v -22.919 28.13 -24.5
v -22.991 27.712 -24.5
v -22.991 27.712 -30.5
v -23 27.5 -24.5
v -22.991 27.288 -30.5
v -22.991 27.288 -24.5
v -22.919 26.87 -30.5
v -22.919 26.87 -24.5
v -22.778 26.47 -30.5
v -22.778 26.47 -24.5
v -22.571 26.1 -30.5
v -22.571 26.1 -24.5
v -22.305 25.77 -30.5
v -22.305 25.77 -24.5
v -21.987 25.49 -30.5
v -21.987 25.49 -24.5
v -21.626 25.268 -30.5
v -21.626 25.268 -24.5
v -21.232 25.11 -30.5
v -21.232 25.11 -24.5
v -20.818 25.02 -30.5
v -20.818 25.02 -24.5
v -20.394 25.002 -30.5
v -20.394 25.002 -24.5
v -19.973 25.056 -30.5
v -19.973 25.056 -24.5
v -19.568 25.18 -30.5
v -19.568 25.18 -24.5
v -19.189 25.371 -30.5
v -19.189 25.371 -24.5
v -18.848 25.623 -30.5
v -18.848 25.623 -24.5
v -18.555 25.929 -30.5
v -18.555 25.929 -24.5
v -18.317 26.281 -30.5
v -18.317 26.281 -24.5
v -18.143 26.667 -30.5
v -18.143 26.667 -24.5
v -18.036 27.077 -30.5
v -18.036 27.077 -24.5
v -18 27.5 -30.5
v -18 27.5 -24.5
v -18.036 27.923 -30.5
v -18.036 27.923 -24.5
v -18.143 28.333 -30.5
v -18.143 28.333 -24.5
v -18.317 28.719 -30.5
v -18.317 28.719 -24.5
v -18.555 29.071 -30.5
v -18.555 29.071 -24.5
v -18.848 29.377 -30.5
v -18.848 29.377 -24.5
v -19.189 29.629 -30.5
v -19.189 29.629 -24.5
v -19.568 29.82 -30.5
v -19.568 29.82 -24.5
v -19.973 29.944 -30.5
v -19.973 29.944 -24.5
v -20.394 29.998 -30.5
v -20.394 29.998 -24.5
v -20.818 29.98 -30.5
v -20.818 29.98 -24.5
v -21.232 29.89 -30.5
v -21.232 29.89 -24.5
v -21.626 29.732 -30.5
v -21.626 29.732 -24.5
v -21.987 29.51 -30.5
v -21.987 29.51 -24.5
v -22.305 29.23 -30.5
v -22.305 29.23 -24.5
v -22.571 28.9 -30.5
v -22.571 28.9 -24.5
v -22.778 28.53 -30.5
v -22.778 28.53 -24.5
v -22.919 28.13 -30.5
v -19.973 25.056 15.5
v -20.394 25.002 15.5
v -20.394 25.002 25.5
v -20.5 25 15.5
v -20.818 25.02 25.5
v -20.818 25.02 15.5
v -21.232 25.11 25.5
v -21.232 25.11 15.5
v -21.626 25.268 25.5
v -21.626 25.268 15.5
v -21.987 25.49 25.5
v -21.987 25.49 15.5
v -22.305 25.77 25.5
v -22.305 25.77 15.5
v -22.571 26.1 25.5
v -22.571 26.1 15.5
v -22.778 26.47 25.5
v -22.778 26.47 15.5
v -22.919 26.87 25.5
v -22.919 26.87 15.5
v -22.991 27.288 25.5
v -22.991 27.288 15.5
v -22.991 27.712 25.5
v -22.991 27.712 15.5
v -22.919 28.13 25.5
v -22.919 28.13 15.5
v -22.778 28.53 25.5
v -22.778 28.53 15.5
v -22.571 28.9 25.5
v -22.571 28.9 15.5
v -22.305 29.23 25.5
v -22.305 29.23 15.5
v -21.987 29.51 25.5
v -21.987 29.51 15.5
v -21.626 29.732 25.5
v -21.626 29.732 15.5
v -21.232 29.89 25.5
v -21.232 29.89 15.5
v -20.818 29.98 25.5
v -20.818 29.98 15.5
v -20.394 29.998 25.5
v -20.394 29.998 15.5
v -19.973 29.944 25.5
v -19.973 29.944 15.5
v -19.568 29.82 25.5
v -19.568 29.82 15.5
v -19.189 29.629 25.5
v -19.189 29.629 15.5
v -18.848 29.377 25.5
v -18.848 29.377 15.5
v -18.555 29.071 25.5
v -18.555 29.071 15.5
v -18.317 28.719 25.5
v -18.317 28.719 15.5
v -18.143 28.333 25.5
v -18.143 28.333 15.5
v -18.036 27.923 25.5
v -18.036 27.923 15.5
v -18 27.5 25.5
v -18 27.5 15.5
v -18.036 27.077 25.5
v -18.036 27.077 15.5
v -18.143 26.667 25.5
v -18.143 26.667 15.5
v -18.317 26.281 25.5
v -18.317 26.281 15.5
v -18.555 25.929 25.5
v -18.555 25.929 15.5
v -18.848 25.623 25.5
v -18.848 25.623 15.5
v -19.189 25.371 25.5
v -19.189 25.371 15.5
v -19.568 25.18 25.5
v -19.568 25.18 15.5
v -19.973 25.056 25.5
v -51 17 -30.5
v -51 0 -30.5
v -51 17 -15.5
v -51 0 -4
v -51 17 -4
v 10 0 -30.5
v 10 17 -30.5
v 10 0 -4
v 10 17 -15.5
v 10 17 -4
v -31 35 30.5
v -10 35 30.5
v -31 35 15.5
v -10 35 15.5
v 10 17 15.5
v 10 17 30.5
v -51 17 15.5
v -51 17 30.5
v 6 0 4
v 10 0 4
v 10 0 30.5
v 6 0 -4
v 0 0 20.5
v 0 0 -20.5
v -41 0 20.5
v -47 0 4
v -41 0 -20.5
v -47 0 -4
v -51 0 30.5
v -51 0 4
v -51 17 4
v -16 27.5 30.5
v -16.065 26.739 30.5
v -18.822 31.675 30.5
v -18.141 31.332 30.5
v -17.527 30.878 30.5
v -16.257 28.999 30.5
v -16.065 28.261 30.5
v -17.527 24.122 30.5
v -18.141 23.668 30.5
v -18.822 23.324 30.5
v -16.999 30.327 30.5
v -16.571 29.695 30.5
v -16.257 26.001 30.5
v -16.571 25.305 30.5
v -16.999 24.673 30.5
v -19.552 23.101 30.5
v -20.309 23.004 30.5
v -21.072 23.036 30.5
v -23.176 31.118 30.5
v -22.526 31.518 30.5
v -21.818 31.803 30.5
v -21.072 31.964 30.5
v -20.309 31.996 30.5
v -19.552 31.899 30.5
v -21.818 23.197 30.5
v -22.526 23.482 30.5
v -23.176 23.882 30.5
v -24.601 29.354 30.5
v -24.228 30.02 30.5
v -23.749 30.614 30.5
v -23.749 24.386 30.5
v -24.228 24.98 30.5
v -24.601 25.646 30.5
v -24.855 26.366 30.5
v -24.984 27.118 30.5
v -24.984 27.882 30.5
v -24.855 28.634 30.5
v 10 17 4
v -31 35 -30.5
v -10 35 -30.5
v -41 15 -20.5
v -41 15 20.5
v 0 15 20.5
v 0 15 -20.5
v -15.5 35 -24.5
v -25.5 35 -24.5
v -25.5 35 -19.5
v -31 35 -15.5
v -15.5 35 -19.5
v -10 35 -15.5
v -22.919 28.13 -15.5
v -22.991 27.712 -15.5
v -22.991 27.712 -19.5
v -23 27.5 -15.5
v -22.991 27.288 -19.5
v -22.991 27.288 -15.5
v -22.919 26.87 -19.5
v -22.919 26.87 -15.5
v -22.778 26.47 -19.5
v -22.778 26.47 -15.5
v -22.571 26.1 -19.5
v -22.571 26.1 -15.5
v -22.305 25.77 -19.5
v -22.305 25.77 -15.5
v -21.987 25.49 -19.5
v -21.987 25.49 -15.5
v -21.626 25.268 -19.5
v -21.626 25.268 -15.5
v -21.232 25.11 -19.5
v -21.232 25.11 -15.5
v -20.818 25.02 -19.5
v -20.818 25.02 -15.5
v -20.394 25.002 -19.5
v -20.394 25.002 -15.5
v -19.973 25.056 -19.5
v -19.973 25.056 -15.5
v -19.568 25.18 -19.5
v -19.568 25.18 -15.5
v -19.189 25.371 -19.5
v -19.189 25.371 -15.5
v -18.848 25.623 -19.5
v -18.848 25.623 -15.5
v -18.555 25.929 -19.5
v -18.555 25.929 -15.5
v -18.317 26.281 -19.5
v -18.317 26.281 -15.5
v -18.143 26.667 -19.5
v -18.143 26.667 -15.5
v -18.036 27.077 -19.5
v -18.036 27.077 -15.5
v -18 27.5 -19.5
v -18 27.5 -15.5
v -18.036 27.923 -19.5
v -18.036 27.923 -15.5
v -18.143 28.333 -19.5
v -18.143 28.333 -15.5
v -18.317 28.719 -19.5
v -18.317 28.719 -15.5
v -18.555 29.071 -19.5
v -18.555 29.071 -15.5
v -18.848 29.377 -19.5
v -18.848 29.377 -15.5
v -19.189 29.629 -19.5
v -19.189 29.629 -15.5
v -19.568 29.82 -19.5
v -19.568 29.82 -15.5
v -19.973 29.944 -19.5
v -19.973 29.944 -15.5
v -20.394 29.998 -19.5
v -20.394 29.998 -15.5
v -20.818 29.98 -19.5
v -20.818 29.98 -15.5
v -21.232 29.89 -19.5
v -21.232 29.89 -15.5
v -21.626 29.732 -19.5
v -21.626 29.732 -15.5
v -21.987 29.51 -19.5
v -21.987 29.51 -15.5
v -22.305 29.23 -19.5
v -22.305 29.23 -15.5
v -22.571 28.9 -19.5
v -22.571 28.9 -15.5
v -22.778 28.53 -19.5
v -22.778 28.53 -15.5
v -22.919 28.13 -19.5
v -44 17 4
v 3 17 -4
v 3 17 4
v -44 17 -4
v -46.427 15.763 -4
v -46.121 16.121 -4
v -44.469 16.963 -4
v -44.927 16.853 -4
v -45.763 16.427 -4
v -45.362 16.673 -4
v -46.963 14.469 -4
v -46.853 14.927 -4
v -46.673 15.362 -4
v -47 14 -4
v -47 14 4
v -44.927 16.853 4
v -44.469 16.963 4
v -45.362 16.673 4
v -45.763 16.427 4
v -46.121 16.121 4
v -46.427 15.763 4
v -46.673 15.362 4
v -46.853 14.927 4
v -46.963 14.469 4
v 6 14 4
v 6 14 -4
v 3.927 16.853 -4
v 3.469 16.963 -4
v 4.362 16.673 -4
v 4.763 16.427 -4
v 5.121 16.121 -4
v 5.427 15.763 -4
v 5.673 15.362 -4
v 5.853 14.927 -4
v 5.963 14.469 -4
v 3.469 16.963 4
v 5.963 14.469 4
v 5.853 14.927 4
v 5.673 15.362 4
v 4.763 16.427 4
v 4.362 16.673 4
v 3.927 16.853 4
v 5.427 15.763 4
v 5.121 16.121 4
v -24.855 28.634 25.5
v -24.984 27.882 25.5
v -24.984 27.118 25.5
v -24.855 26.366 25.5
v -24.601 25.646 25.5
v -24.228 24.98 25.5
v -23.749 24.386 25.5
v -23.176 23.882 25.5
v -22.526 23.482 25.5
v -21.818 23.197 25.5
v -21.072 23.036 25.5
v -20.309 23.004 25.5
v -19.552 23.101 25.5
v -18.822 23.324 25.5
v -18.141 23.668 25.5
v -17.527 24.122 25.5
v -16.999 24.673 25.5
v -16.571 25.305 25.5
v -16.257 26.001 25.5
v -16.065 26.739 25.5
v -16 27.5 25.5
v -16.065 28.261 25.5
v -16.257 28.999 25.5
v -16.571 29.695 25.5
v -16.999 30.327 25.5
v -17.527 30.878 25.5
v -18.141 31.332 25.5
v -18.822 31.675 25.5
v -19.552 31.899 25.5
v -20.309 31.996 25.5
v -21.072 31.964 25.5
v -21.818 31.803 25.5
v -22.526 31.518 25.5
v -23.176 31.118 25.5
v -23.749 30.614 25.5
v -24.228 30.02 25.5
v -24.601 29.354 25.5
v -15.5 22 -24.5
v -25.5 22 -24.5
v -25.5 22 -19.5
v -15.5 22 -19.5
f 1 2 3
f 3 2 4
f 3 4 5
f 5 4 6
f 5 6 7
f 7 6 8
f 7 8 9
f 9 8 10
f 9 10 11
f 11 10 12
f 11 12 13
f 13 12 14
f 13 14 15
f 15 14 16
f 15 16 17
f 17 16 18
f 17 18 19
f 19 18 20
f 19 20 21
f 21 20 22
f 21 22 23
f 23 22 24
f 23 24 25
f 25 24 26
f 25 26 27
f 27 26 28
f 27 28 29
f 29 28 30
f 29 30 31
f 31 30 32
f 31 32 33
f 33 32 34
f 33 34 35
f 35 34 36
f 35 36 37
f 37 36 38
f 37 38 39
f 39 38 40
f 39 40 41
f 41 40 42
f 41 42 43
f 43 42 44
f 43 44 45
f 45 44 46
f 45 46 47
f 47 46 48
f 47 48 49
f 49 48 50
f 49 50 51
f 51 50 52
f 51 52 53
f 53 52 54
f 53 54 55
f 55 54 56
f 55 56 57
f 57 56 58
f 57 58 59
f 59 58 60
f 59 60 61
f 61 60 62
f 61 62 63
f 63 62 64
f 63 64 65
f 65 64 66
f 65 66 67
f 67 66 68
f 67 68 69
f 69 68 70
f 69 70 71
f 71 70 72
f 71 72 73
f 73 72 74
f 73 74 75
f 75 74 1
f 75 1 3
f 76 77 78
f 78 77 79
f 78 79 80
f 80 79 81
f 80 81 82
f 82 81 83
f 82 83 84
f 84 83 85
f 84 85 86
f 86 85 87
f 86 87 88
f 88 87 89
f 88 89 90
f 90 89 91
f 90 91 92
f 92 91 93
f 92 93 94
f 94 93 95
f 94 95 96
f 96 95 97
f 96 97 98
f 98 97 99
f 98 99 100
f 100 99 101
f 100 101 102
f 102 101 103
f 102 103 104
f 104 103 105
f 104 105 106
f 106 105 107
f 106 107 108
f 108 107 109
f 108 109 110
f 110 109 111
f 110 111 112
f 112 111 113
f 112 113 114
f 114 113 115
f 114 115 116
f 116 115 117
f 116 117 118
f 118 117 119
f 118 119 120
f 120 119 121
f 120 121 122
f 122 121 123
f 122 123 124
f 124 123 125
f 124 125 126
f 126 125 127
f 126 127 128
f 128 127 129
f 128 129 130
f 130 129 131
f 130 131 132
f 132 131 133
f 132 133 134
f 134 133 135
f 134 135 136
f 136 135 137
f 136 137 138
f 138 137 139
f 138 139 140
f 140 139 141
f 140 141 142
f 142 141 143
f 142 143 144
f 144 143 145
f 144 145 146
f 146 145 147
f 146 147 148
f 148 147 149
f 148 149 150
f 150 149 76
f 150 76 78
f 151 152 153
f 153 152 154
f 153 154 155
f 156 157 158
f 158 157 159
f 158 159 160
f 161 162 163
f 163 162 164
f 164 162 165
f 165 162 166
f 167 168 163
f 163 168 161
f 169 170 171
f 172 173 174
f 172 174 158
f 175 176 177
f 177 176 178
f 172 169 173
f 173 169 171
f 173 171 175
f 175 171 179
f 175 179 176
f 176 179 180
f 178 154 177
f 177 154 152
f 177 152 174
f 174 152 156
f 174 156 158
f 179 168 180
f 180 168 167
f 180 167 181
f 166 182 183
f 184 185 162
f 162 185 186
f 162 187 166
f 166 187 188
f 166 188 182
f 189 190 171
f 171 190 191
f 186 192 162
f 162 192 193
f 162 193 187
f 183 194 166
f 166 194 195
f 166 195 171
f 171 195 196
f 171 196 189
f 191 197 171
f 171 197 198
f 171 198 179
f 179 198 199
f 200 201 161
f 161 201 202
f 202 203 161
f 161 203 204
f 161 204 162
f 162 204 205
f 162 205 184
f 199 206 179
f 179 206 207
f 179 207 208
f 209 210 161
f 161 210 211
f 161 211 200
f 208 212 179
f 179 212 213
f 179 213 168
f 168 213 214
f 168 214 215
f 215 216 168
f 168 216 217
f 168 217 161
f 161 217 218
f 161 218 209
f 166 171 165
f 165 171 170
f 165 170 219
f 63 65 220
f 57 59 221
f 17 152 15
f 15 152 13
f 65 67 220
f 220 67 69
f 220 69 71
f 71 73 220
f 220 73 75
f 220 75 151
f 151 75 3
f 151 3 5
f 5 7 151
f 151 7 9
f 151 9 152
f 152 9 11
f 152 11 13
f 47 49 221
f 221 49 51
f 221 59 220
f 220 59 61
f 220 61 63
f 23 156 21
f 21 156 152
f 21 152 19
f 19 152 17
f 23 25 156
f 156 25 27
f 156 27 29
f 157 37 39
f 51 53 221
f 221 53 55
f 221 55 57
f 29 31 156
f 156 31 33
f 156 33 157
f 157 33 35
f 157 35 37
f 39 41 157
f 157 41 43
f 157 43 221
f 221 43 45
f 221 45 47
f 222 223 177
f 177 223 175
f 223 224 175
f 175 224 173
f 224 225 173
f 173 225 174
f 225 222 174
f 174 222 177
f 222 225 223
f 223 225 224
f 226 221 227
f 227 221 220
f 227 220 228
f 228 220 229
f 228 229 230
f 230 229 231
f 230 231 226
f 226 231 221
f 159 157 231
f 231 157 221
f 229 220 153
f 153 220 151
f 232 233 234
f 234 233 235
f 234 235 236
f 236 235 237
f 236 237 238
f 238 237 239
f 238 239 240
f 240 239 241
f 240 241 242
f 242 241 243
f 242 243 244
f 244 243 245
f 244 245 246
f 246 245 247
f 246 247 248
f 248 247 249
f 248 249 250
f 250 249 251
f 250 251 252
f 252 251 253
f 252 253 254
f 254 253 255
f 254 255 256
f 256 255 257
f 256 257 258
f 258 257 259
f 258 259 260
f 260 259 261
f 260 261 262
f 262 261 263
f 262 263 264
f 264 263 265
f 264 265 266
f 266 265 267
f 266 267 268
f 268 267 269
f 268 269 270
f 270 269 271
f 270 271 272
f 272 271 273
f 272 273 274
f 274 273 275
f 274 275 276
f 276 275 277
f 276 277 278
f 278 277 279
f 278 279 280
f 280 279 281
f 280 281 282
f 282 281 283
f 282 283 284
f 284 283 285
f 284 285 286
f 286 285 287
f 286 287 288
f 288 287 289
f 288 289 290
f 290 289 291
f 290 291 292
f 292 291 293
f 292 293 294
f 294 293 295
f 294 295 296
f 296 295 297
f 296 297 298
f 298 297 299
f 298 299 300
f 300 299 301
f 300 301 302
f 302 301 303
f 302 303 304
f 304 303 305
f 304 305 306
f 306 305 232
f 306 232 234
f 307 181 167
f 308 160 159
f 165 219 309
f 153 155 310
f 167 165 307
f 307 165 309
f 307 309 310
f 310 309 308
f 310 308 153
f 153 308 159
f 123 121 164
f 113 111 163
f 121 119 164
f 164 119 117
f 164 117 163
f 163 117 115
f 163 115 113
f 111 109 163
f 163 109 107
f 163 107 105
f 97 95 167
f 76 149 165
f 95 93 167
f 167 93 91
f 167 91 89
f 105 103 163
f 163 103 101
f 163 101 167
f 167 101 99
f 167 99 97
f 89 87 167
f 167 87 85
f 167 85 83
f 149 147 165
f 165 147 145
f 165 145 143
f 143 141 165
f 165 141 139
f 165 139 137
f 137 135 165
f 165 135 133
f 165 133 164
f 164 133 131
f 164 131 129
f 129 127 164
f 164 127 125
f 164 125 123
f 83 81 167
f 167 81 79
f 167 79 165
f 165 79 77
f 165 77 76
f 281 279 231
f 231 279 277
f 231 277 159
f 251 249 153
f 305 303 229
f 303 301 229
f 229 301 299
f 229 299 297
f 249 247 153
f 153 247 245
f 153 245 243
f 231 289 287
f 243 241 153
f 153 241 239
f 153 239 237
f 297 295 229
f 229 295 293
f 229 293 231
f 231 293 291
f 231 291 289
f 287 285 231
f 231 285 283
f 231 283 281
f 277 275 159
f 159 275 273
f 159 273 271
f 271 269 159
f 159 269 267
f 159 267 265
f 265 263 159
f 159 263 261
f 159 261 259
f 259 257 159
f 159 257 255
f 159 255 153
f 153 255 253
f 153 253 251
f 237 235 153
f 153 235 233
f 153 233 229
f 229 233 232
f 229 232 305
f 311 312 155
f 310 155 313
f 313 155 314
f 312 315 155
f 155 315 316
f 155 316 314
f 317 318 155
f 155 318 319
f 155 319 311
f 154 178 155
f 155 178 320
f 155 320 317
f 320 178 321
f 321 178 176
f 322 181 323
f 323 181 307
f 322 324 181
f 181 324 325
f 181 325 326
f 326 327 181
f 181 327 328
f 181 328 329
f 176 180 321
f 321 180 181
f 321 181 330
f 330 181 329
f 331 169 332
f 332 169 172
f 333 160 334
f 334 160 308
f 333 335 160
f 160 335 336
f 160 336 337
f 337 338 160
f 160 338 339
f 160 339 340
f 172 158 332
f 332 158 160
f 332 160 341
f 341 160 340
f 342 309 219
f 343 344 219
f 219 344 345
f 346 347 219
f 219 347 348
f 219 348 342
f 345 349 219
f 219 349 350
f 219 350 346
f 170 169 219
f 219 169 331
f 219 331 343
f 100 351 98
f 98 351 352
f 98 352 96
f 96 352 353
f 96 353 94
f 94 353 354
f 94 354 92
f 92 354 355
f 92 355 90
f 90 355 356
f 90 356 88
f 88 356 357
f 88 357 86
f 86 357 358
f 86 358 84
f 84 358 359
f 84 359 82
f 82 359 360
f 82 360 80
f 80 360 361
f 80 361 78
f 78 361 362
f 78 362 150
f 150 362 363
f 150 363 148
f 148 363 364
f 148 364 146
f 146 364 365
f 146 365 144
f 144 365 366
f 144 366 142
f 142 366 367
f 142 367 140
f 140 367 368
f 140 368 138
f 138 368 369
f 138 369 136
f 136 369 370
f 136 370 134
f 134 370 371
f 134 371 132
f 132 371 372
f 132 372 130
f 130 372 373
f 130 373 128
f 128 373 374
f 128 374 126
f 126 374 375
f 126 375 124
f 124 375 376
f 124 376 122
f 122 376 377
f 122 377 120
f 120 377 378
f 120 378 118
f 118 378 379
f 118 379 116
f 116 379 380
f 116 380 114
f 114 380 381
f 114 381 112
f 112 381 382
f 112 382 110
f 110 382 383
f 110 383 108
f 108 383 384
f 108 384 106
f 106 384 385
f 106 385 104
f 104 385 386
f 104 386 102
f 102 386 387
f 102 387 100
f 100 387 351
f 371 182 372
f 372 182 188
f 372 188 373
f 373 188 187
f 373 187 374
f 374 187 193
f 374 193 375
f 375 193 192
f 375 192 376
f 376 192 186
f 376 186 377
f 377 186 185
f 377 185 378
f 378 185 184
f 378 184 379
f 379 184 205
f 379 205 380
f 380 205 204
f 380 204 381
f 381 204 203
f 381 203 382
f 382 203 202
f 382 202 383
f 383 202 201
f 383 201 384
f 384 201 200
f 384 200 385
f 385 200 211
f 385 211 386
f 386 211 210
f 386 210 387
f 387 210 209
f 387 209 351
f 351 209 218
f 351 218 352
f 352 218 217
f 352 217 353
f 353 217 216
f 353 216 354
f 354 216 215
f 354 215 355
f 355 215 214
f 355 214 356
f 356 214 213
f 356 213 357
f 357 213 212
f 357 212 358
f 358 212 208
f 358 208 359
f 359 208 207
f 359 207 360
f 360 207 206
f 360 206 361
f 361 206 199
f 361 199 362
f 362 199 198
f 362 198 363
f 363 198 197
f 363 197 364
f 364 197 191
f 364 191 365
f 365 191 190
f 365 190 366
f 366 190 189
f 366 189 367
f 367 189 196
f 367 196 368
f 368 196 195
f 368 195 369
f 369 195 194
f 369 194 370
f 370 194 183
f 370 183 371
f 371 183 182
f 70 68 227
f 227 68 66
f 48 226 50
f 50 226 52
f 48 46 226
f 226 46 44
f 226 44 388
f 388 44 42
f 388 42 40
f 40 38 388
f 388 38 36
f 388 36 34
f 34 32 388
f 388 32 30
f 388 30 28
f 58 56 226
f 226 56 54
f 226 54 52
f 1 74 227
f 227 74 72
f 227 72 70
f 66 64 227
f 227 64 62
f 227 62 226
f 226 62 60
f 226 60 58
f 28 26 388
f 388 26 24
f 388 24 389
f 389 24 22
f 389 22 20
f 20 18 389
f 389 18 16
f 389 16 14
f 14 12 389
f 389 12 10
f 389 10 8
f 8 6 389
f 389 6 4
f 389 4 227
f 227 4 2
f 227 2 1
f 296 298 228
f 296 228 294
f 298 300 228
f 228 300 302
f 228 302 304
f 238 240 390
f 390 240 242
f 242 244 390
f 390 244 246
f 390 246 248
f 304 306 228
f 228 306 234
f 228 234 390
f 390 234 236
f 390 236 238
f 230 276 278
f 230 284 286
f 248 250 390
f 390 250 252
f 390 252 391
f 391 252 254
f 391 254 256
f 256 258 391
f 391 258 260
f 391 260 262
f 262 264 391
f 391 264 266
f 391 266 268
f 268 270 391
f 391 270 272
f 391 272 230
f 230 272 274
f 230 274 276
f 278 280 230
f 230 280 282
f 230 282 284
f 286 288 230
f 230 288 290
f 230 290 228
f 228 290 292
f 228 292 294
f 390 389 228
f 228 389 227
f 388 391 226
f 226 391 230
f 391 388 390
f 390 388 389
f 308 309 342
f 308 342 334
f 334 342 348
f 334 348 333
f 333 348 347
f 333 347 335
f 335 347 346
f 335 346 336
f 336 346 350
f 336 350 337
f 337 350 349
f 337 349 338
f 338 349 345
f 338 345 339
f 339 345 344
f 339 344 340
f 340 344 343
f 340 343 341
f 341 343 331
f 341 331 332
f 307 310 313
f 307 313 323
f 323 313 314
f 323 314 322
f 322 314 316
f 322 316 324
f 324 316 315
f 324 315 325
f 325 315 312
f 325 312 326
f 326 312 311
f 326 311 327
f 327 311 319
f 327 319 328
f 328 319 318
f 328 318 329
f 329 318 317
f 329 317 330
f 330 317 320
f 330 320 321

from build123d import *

# Parameters (mm, degrees)
SKETCH1_W           = 61
SKETCH1_H           = 61
SKETCH1_W_2         = 41
SKETCH1_H_2         = 41
BOSS_EXTRUDE1_DEPTH = 15
SKETCH2_W           = 61
SKETCH2_H           = 61
BOSS_EXTRUDE2_DEPTH = 20
SKETCH3_R           = 2.5
CUT_EXTRUDE1_DEPTH  = 90
SKETCH5_W           = 31
SKETCH5_H           = 18
CUT_EXTRUDE2_DEPTH  = 90
SKETCH6_W           = 4
SKETCH6_H           = 8
CUT_EXTRUDE3_DEPTH  = 90
SKETCH7_R           = 4.5
CUT_EXTRUDE4_DEPTH  = 5
SKETCH8_W           = 10
SKETCH8_H           = 5
CUT_EXTRUDE5_DEPTH  = 13
FILLET1_R           = 3


with BuildPart() as part:
    # Sketch1 → Boss-Extrude1 (new body)
    with BuildSketch(Plane(origin=(0, 0, 0), x_dir=(1, 0, 0), z_dir=(0, 1, 0))):
        with Locations((-20.5, 0)):
            Rectangle(SKETCH1_W, SKETCH1_H)
        with Locations((-20.5, 0)):
            Rectangle(SKETCH1_W_2, SKETCH1_H_2, mode=Mode.SUBTRACT)
    extrude(amount=BOSS_EXTRUDE1_DEPTH)

    # Sketch2 → Boss-Extrude2 (add)
    with BuildSketch(Plane(origin=(0, 15, 0), x_dir=(1, 0, 0), z_dir=(0, 1, 0))):
        with Locations((-20.5, 0)):
            Rectangle(SKETCH2_W, SKETCH2_H)
    extrude(amount=BOSS_EXTRUDE2_DEPTH)

    # Sketch3 → Cut-Extrude1 (cut)
    with BuildSketch(Plane.XY.offset(30.5)):
        with Locations((-20.5, 27.5)):
            Circle(SKETCH3_R)
        Polygon((-51, 17), (-31, 35), (-51, 35), align=None)
        Polygon((-10, 35), (10, 17), (10, 35), align=None)
    extrude(amount=-CUT_EXTRUDE1_DEPTH, mode=Mode.SUBTRACT)

    # Sketch5 → Cut-Extrude2 (cut)
    with BuildSketch(Plane(origin=(10, 0, 0), x_dir=(0, 0, -1), z_dir=(1, 0, 0))):
        with Locations((0, 26)):
            Rectangle(SKETCH5_W, SKETCH5_H)
    extrude(amount=-CUT_EXTRUDE2_DEPTH, mode=Mode.SUBTRACT)

    # Sketch6 → Cut-Extrude3 (cut)
    with BuildSketch(Plane(origin=(0, 17, 0), x_dir=(1, 0, 0), z_dir=(0, 1, 0))):
        with Locations((-49, 0)):
            Rectangle(SKETCH6_W, SKETCH6_H)
        with Locations((8, 0)):
            Rectangle(SKETCH6_W, SKETCH6_H)
    extrude(amount=-CUT_EXTRUDE3_DEPTH, mode=Mode.SUBTRACT)

    # Sketch7 → Cut-Extrude4 (cut)
    with BuildSketch(Plane.XY.offset(30.5)):
        with Locations((-20.5, 27.5)):
            Circle(SKETCH7_R)
    extrude(amount=-CUT_EXTRUDE4_DEPTH, mode=Mode.SUBTRACT)

    # Sketch8 → Cut-Extrude5 (cut)
    with BuildSketch(Plane(origin=(0, 35, 0), x_dir=(1, 0, 0), z_dir=(0, 1, 0))):
        with Locations((-20.5, 22)):
            Rectangle(SKETCH8_W, SKETCH8_H)
    extrude(amount=-CUT_EXTRUDE5_DEPTH, mode=Mode.SUBTRACT)

    # Fillet1
    fillet1_edges = [part.edges().sort_by_distance(p)[0] for p in [
        (6, 17, 0),
        (-47, 17, 0),
    ]]
    fillet(fillet1_edges, radius=FILLET1_R)


solid = part.part
